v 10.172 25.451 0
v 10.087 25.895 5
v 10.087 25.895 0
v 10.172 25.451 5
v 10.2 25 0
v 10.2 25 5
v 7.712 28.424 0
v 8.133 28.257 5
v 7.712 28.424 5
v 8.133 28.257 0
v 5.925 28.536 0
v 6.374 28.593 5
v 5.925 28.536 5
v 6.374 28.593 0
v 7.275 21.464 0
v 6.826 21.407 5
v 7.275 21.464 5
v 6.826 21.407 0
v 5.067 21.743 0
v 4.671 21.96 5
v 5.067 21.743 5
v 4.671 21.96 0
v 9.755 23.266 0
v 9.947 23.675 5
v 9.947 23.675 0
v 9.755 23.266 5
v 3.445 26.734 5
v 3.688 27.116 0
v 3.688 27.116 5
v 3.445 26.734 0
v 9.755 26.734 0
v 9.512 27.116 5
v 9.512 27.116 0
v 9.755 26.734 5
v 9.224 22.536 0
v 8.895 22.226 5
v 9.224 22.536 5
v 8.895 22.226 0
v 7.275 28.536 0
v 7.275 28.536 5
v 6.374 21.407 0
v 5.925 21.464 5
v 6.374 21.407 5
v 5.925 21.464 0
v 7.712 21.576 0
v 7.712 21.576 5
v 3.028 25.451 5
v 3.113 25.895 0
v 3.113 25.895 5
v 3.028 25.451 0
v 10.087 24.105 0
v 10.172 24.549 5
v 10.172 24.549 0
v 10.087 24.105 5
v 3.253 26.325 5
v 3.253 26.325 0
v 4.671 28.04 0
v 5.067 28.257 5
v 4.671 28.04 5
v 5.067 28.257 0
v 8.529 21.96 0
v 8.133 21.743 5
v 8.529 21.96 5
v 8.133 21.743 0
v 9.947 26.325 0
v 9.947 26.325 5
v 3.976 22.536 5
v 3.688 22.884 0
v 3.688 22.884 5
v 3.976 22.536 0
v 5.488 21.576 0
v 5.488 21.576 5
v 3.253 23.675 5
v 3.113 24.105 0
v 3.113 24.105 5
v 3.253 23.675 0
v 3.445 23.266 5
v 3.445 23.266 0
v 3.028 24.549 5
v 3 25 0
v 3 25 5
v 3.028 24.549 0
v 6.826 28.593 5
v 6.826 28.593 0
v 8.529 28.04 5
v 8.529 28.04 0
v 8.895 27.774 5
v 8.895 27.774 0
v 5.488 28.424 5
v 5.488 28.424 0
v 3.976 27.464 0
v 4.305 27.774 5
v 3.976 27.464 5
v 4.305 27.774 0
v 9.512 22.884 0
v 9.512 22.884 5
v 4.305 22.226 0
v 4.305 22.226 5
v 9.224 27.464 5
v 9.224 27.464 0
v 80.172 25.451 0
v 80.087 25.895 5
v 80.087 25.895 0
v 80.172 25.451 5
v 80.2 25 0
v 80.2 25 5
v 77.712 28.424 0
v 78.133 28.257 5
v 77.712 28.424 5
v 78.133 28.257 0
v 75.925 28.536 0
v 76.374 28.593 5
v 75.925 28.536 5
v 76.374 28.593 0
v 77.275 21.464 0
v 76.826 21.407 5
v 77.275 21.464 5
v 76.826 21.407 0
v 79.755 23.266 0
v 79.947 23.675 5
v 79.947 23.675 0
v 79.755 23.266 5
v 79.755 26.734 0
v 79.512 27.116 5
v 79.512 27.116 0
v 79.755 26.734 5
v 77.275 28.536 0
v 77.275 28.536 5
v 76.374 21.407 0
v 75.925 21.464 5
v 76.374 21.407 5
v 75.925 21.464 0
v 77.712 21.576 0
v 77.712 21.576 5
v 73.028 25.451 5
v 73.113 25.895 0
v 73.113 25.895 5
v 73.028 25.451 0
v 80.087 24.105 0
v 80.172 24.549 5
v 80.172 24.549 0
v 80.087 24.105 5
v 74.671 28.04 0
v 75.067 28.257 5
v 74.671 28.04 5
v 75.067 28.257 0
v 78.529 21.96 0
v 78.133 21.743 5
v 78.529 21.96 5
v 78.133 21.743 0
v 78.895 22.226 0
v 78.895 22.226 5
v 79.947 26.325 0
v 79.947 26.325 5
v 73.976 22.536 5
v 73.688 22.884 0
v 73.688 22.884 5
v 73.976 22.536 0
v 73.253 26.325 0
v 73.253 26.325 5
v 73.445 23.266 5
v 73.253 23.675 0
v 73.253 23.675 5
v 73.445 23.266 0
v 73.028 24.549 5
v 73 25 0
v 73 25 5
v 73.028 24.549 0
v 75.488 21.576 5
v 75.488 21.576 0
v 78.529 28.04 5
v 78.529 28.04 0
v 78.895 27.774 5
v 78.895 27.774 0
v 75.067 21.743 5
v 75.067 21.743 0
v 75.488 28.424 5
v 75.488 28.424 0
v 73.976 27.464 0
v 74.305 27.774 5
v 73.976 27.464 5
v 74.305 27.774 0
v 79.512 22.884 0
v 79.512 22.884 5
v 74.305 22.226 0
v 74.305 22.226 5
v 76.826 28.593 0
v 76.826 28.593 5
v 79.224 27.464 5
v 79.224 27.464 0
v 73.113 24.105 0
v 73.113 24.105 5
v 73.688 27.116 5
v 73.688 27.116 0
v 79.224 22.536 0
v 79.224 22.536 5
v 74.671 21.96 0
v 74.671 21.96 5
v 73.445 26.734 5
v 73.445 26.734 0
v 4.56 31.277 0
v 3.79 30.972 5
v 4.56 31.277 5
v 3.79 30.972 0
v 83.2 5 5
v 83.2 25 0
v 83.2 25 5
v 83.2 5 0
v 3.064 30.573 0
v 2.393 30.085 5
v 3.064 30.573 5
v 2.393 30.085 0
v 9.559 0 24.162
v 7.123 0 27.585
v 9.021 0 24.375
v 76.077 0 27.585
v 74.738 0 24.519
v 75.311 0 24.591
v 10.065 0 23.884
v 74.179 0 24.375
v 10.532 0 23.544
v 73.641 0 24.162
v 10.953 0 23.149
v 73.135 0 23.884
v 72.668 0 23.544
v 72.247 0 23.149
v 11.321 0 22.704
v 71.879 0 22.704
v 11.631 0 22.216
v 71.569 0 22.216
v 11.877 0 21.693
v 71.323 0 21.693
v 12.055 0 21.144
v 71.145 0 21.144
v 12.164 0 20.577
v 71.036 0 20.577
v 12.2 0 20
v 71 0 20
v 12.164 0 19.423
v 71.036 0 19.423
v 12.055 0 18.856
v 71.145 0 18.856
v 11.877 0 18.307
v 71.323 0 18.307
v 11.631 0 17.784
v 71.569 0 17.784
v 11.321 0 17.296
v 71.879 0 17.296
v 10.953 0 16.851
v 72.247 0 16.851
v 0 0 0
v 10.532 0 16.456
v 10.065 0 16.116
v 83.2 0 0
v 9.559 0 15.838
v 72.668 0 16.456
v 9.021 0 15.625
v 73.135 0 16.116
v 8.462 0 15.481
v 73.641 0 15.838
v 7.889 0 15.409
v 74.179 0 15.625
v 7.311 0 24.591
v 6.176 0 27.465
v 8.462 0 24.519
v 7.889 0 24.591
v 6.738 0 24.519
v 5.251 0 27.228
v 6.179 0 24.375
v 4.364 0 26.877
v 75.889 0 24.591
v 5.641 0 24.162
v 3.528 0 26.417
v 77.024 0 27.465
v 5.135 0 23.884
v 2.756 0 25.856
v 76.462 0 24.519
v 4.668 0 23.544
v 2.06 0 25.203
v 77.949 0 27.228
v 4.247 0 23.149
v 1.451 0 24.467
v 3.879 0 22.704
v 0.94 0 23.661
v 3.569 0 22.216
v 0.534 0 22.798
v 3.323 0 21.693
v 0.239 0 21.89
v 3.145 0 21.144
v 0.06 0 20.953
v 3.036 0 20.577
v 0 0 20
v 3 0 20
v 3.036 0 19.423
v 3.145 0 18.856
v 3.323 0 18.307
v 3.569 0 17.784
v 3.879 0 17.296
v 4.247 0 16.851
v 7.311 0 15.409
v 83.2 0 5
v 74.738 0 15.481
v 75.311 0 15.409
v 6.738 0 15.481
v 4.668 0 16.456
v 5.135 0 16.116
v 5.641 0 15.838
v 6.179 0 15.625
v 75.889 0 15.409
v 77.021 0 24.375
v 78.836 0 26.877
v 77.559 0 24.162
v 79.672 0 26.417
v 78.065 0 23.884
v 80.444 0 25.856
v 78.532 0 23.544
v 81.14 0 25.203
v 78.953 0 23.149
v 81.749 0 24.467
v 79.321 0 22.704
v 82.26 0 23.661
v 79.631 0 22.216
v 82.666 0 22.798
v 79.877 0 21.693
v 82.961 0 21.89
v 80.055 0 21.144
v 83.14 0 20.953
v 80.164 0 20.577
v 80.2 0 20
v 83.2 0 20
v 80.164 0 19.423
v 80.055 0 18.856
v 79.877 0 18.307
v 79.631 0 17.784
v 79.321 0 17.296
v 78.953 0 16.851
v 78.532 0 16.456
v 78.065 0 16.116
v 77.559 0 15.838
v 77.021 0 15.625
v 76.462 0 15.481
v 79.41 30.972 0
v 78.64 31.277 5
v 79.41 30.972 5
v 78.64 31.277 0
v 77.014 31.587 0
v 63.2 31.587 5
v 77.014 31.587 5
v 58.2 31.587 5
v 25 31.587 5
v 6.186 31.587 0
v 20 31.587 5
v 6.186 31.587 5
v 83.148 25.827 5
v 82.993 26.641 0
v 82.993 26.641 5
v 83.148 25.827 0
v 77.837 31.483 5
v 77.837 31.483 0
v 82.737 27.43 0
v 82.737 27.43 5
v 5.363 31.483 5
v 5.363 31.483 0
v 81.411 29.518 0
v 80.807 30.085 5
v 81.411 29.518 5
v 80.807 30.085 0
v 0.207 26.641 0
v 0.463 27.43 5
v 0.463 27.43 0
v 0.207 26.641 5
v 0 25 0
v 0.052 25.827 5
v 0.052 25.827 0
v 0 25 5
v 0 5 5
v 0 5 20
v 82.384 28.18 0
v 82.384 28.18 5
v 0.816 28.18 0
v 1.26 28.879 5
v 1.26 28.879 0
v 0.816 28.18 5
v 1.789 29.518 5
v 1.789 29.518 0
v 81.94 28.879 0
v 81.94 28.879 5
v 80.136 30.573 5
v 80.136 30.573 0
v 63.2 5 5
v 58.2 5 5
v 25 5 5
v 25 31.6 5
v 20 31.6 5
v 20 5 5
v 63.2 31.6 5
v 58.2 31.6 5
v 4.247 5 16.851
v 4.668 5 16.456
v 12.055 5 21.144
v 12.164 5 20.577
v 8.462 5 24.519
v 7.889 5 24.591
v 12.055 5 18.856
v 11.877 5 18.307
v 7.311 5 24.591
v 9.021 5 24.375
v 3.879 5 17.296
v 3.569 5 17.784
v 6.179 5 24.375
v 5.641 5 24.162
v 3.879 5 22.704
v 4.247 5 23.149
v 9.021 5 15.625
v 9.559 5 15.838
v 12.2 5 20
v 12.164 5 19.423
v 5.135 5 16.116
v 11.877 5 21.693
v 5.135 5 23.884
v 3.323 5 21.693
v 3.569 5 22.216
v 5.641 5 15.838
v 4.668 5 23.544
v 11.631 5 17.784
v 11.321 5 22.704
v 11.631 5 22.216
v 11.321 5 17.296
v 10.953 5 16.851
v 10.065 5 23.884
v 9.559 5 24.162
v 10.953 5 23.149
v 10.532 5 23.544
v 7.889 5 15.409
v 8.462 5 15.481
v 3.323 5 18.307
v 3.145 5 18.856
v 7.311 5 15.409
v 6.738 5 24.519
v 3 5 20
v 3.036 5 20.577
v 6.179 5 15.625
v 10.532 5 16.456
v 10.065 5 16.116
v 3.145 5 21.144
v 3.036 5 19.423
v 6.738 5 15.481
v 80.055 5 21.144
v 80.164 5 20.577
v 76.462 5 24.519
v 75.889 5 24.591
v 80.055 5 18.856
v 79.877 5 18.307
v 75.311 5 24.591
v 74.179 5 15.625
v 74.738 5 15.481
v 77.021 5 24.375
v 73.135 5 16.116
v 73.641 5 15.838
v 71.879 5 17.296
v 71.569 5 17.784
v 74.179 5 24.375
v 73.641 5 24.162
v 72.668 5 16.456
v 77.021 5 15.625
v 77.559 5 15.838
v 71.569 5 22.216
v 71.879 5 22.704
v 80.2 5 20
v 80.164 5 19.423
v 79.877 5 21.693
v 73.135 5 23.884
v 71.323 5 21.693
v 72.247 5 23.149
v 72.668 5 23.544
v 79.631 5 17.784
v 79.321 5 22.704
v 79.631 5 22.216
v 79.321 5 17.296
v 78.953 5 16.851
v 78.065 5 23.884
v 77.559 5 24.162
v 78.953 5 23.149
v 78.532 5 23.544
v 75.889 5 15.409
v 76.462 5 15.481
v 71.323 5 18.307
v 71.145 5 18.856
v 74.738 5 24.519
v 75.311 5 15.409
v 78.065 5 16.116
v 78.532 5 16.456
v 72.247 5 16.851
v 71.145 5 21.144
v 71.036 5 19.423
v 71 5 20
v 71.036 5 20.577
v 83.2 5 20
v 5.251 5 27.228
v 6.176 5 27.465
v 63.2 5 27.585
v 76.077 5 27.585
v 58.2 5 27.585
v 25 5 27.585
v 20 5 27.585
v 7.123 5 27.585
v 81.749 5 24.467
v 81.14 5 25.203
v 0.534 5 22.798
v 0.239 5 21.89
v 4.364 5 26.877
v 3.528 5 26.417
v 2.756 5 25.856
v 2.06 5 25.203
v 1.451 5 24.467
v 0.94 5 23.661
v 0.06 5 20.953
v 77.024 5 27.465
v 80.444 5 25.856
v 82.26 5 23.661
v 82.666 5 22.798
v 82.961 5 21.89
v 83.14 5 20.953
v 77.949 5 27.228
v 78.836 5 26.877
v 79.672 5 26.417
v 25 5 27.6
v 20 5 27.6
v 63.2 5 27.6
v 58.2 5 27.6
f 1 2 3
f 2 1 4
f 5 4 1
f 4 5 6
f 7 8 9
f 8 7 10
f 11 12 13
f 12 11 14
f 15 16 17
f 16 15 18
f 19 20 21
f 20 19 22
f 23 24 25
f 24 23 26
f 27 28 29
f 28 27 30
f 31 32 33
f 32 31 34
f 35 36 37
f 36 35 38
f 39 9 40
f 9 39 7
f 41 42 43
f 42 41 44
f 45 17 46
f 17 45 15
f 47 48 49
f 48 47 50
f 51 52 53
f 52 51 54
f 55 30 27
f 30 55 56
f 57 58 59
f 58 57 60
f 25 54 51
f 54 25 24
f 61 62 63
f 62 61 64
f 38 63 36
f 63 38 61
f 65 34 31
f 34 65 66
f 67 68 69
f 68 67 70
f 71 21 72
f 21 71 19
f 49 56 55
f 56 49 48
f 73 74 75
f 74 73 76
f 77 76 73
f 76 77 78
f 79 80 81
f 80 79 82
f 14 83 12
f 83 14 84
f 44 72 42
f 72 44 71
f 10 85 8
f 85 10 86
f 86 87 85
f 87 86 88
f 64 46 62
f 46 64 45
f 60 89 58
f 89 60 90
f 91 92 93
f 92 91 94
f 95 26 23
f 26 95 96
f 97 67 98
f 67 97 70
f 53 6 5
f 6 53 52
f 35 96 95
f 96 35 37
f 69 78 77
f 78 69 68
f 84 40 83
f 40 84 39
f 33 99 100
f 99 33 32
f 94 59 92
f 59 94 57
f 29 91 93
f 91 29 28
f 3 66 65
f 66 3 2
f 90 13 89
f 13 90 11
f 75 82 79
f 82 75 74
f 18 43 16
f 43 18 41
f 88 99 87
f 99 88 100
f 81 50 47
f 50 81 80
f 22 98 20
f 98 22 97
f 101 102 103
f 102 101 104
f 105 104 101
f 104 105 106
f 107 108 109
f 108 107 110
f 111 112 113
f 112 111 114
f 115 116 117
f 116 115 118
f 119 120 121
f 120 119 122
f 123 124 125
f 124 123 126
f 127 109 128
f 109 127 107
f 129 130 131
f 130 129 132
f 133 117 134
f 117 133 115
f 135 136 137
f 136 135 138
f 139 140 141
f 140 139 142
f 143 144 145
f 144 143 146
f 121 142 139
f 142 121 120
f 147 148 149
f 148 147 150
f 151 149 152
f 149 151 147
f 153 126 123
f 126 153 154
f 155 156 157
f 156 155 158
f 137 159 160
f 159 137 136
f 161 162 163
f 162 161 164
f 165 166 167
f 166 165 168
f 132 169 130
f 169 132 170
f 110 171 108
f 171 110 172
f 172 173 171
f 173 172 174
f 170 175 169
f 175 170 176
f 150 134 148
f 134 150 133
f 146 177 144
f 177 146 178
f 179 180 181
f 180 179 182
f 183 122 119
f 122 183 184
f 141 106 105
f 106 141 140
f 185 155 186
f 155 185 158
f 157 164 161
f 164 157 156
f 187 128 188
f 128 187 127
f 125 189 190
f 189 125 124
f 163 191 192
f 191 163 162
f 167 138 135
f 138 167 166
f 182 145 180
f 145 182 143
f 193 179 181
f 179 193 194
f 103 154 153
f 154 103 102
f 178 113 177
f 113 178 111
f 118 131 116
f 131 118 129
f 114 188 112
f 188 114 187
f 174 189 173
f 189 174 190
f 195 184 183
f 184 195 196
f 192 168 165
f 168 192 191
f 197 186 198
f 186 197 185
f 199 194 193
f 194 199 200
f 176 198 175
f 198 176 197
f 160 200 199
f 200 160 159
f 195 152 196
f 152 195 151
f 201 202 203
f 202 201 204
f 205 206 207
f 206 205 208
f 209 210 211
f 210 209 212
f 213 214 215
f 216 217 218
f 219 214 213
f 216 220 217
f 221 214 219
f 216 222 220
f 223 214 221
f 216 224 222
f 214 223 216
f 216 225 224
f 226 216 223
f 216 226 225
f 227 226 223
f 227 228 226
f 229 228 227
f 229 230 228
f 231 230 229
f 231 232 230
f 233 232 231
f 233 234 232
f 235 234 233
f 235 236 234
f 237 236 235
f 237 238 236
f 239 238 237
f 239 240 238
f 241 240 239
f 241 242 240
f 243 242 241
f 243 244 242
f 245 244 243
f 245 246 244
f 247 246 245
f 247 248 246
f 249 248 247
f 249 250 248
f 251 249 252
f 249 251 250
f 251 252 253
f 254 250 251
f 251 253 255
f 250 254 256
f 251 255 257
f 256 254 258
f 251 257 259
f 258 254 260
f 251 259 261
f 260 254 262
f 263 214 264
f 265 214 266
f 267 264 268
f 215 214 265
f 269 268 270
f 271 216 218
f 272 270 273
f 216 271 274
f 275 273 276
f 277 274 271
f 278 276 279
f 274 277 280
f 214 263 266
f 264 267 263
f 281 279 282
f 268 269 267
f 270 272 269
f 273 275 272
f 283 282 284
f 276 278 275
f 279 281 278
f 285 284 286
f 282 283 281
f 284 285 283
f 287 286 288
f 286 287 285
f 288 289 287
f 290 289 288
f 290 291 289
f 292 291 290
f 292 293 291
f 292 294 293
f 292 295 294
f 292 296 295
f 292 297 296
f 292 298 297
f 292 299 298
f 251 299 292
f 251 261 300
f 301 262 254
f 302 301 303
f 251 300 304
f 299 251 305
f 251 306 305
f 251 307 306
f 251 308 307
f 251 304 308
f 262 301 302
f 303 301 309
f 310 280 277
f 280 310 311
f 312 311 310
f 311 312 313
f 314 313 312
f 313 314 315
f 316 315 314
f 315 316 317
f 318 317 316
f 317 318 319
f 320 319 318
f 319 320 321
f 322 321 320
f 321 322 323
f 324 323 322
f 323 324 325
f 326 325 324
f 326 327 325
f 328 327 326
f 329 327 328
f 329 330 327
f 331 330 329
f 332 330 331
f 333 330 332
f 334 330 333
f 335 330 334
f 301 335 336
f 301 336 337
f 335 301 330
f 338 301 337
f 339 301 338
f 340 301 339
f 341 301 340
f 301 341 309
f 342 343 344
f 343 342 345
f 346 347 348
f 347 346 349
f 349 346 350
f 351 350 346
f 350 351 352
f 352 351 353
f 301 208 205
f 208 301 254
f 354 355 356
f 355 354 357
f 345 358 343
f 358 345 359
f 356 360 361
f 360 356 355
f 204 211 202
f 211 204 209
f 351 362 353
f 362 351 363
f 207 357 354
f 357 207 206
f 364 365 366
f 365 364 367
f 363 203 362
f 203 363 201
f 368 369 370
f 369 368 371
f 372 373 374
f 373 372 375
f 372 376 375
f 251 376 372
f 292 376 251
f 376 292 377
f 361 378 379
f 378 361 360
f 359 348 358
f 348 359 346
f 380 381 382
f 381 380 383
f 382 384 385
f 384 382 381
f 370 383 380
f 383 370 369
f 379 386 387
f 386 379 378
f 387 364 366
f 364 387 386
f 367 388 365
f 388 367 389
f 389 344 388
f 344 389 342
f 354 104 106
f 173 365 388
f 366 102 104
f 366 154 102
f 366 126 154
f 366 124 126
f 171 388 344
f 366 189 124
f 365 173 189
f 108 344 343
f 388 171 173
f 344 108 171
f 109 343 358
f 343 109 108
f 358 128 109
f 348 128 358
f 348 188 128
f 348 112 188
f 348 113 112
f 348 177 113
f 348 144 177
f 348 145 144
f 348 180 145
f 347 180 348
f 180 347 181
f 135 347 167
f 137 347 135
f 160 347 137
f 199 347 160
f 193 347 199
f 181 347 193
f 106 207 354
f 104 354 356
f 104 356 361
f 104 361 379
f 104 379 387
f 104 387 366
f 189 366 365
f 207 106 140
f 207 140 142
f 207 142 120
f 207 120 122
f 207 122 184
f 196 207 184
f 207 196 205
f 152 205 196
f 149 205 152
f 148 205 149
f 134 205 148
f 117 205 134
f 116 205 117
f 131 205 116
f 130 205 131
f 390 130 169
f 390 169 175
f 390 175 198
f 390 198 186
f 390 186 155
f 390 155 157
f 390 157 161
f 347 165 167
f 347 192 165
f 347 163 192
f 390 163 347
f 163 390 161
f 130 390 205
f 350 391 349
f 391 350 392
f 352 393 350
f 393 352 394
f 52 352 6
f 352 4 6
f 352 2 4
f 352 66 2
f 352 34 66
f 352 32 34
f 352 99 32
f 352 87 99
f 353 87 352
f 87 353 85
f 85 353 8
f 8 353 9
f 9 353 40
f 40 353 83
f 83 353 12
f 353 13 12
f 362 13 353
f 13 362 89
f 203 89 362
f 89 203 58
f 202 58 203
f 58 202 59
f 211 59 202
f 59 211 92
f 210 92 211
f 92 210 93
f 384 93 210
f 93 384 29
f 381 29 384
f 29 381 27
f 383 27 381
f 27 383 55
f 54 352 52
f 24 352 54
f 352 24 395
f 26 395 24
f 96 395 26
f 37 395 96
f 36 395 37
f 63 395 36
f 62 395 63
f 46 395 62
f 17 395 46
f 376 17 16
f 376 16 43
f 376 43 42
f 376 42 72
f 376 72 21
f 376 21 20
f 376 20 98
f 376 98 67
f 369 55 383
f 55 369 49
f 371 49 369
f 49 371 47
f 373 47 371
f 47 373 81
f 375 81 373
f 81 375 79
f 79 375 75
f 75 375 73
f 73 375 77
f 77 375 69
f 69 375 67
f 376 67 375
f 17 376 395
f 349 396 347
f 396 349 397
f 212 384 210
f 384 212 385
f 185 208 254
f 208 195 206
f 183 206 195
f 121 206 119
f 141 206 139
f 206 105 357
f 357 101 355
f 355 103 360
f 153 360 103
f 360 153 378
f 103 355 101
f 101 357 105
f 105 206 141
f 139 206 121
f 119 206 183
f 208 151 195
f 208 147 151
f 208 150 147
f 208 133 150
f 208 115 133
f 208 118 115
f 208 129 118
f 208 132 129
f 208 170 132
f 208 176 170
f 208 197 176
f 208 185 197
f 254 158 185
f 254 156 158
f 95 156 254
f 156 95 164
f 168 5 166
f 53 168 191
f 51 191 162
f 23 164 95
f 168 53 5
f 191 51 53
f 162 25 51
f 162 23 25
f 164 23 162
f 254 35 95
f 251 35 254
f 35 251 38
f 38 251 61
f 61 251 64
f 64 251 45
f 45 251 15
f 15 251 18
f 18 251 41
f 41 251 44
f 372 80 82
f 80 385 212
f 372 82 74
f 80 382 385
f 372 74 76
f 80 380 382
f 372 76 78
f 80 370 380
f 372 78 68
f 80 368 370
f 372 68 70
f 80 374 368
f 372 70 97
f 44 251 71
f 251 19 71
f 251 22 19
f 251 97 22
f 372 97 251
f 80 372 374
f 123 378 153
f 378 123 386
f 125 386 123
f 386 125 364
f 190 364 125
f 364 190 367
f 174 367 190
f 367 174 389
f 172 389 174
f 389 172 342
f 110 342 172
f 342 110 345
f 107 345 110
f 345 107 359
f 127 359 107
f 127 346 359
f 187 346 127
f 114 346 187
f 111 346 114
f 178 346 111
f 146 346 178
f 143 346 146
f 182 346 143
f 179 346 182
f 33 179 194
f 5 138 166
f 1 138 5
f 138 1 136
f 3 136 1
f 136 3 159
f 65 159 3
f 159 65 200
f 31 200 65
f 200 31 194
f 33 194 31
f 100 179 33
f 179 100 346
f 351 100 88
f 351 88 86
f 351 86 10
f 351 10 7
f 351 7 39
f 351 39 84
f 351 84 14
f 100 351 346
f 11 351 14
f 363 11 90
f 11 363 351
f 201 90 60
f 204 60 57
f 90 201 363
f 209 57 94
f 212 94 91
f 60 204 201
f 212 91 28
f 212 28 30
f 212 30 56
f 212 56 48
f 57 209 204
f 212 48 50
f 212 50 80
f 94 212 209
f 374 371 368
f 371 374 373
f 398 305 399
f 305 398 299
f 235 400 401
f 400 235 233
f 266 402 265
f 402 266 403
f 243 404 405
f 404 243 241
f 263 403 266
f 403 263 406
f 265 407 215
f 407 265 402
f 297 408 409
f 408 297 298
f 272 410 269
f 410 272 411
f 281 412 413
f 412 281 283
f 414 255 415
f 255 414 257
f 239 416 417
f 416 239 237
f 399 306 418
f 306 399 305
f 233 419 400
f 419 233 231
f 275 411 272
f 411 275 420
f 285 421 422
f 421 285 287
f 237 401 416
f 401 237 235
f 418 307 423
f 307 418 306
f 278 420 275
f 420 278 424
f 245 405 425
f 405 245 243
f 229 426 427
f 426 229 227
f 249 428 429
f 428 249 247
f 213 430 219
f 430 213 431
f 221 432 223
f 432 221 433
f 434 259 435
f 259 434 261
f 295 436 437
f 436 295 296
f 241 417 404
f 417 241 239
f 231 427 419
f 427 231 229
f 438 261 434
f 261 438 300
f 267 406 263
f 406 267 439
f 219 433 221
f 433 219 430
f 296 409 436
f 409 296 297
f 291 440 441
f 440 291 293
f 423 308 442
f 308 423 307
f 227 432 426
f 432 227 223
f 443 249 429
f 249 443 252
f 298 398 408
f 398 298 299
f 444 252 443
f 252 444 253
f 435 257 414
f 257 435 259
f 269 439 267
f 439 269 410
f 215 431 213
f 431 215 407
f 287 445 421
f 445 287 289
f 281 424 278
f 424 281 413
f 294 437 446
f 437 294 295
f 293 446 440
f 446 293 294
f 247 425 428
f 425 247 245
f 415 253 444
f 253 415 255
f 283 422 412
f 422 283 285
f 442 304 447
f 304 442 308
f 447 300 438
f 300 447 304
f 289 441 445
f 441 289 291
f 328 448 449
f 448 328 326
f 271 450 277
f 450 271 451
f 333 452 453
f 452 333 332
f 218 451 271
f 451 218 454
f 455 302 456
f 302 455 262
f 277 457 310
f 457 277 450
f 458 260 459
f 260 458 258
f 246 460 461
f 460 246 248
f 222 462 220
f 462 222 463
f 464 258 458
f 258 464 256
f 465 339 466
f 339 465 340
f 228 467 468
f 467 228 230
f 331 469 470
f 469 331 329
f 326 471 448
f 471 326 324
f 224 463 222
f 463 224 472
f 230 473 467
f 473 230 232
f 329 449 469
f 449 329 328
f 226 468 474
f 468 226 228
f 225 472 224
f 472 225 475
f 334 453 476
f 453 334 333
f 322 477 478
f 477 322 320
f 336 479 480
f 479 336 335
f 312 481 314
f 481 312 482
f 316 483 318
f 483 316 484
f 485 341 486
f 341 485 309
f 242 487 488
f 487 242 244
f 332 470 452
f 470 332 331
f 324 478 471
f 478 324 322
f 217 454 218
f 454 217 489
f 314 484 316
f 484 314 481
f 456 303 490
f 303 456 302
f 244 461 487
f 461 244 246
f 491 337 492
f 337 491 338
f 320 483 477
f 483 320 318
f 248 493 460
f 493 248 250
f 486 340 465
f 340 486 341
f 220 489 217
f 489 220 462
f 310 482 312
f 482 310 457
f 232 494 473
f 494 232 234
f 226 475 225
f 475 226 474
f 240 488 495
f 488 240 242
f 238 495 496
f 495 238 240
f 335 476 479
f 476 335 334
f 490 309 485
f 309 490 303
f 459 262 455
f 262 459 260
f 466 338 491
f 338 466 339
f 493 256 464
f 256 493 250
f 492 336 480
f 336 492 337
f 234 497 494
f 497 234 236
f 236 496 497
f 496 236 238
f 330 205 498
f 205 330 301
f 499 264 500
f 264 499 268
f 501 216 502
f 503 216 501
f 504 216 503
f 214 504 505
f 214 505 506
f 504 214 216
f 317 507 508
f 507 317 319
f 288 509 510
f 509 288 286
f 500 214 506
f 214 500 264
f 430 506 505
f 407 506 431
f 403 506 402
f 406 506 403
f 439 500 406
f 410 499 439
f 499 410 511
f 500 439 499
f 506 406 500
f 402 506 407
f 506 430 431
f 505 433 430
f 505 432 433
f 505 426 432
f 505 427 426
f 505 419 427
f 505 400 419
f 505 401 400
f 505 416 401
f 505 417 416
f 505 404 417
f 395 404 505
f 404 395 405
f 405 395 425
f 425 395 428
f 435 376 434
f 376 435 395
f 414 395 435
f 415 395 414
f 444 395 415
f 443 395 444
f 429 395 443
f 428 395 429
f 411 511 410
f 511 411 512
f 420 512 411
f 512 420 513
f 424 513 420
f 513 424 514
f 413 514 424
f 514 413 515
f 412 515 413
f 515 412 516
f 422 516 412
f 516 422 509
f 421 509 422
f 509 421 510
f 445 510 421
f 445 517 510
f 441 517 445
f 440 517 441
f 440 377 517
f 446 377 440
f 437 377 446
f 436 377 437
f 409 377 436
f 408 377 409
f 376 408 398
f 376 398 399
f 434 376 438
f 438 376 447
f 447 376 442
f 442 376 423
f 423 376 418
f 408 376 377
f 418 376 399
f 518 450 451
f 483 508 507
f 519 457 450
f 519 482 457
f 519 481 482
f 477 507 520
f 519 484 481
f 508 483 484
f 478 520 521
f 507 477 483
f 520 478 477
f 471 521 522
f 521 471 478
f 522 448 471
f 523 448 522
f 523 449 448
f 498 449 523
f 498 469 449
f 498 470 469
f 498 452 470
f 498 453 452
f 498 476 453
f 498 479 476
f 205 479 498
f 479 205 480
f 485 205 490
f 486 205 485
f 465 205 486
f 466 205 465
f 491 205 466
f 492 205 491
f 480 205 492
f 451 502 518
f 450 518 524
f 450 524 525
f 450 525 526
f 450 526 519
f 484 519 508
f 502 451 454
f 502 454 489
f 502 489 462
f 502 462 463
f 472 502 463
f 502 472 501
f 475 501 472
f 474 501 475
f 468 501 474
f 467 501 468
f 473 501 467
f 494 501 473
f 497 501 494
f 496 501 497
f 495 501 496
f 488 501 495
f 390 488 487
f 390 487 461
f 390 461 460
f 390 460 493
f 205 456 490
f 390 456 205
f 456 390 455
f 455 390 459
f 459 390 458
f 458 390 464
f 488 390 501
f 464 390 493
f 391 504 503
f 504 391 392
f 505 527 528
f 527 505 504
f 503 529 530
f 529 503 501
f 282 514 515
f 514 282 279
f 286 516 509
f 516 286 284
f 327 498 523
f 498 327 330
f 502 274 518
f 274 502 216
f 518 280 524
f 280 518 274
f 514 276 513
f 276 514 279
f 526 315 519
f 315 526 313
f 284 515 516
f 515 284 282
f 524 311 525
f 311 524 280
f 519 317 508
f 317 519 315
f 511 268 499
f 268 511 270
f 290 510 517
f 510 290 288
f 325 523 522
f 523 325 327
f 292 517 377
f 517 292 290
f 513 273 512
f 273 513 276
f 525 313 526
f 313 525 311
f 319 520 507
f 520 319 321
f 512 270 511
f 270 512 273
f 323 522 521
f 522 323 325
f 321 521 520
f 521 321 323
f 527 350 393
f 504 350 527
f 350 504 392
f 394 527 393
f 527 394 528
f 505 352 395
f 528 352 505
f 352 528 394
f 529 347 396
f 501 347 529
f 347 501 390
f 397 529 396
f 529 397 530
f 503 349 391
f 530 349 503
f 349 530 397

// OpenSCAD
// SHH shifter mount

$fn=50;

//DEPTH = 5;
//DX = 90; // x spacing of holes
//DY = 70; // y spacing of holes
//SHH_HOLE_R = 3.5; // shifter hole radius
//MOUNT_HOLE_R = 4.5; // mount hole radius
//DM = 110; // mount hole spacing

DEPTH = 5; // depth of the model
MOUNT_HOLE_Z = 20; // mount hole Z spacing
SHH_HOLE_Y = 25; // SHH hole Y spacing
SHH_HOLE_X = 70; // SSH hole X spacing
SHH_HOLE_R = 3.6; // shifter hole radius
MOUNT_HOLE_R = 4.6; // mount hole radius

MOUNT_HOLE_X = SHH_HOLE_X + (SHH_HOLE_R * 2) - (MOUNT_HOLE_R * 2);

BORDER=3; // border radius around the model holes

MODEL_X = SHH_HOLE_X + (SHH_HOLE_R + BORDER) * 2;
MODEL_Z = MOUNT_HOLE_Z + MOUNT_HOLE_R + BORDER;
MODEL_Y = SHH_HOLE_Y + SHH_HOLE_R + BORDER;

TRIM = 0.01;

module shh_holes(r=SHH_HOLE_R, h=DEPTH) {
  cylinder(r= r, h=h);
  translate([SHH_HOLE_X, 0, 0])
  cylinder(r= r, h=h);
}

module mount_holes(r=MOUNT_HOLE_R, h=DEPTH) {
  cylinder(r= r, h=h);
  translate([MOUNT_HOLE_X, 0, 0])
  cylinder(r= r, h=h);
}

module top() {
   // top of the mount is a hull made up of two cylinders for each
   // SHH hole and a cube of the back plane
  r = SHH_HOLE_R + BORDER;
  difference() {
    hull(){
      translate([r, SHH_HOLE_Y, 0]) 
      shh_holes(r=r, h=DEPTH);
      cube([SHH_HOLE_X + r * 2, DEPTH, DEPTH]);
    }
    translate([r, SHH_HOLE_Y, -TRIM]) 
    shh_holes(h=DEPTH + TRIM * 2);
  }
}

module side() {
  // figure out the mount hole X by using the SHH hole measurements
   // top of the mount is a hull made up of two cylinders for each
   // SHH hole and a cube of the back plane
  r = MOUNT_HOLE_R + BORDER;

  translate([0, DEPTH, 0])
  rotate([90, 0, 0])
  difference() {
    hull(){
      translate([r, MOUNT_HOLE_Z, 0]) 
      mount_holes(r=r, h=DEPTH);
      cube([MOUNT_HOLE_X + r * 2, DEPTH, DEPTH]);
    }
    translate([r, MOUNT_HOLE_Z, -TRIM]) 
    mount_holes(h=DEPTH + TRIM * 2);
  }
}

module brace() {
  translate([DEPTH, 0])
  rotate([0, 270, 0])
  linear_extrude(DEPTH)
  polygon([ [DEPTH, DEPTH], [DEPTH, MODEL_Y], [MODEL_Z, DEPTH] ]);
  
}

top();
side();
translate([20, 0, 0]) brace();
translate([MODEL_X - 20 - DEPTH, 0, 0])brace();
